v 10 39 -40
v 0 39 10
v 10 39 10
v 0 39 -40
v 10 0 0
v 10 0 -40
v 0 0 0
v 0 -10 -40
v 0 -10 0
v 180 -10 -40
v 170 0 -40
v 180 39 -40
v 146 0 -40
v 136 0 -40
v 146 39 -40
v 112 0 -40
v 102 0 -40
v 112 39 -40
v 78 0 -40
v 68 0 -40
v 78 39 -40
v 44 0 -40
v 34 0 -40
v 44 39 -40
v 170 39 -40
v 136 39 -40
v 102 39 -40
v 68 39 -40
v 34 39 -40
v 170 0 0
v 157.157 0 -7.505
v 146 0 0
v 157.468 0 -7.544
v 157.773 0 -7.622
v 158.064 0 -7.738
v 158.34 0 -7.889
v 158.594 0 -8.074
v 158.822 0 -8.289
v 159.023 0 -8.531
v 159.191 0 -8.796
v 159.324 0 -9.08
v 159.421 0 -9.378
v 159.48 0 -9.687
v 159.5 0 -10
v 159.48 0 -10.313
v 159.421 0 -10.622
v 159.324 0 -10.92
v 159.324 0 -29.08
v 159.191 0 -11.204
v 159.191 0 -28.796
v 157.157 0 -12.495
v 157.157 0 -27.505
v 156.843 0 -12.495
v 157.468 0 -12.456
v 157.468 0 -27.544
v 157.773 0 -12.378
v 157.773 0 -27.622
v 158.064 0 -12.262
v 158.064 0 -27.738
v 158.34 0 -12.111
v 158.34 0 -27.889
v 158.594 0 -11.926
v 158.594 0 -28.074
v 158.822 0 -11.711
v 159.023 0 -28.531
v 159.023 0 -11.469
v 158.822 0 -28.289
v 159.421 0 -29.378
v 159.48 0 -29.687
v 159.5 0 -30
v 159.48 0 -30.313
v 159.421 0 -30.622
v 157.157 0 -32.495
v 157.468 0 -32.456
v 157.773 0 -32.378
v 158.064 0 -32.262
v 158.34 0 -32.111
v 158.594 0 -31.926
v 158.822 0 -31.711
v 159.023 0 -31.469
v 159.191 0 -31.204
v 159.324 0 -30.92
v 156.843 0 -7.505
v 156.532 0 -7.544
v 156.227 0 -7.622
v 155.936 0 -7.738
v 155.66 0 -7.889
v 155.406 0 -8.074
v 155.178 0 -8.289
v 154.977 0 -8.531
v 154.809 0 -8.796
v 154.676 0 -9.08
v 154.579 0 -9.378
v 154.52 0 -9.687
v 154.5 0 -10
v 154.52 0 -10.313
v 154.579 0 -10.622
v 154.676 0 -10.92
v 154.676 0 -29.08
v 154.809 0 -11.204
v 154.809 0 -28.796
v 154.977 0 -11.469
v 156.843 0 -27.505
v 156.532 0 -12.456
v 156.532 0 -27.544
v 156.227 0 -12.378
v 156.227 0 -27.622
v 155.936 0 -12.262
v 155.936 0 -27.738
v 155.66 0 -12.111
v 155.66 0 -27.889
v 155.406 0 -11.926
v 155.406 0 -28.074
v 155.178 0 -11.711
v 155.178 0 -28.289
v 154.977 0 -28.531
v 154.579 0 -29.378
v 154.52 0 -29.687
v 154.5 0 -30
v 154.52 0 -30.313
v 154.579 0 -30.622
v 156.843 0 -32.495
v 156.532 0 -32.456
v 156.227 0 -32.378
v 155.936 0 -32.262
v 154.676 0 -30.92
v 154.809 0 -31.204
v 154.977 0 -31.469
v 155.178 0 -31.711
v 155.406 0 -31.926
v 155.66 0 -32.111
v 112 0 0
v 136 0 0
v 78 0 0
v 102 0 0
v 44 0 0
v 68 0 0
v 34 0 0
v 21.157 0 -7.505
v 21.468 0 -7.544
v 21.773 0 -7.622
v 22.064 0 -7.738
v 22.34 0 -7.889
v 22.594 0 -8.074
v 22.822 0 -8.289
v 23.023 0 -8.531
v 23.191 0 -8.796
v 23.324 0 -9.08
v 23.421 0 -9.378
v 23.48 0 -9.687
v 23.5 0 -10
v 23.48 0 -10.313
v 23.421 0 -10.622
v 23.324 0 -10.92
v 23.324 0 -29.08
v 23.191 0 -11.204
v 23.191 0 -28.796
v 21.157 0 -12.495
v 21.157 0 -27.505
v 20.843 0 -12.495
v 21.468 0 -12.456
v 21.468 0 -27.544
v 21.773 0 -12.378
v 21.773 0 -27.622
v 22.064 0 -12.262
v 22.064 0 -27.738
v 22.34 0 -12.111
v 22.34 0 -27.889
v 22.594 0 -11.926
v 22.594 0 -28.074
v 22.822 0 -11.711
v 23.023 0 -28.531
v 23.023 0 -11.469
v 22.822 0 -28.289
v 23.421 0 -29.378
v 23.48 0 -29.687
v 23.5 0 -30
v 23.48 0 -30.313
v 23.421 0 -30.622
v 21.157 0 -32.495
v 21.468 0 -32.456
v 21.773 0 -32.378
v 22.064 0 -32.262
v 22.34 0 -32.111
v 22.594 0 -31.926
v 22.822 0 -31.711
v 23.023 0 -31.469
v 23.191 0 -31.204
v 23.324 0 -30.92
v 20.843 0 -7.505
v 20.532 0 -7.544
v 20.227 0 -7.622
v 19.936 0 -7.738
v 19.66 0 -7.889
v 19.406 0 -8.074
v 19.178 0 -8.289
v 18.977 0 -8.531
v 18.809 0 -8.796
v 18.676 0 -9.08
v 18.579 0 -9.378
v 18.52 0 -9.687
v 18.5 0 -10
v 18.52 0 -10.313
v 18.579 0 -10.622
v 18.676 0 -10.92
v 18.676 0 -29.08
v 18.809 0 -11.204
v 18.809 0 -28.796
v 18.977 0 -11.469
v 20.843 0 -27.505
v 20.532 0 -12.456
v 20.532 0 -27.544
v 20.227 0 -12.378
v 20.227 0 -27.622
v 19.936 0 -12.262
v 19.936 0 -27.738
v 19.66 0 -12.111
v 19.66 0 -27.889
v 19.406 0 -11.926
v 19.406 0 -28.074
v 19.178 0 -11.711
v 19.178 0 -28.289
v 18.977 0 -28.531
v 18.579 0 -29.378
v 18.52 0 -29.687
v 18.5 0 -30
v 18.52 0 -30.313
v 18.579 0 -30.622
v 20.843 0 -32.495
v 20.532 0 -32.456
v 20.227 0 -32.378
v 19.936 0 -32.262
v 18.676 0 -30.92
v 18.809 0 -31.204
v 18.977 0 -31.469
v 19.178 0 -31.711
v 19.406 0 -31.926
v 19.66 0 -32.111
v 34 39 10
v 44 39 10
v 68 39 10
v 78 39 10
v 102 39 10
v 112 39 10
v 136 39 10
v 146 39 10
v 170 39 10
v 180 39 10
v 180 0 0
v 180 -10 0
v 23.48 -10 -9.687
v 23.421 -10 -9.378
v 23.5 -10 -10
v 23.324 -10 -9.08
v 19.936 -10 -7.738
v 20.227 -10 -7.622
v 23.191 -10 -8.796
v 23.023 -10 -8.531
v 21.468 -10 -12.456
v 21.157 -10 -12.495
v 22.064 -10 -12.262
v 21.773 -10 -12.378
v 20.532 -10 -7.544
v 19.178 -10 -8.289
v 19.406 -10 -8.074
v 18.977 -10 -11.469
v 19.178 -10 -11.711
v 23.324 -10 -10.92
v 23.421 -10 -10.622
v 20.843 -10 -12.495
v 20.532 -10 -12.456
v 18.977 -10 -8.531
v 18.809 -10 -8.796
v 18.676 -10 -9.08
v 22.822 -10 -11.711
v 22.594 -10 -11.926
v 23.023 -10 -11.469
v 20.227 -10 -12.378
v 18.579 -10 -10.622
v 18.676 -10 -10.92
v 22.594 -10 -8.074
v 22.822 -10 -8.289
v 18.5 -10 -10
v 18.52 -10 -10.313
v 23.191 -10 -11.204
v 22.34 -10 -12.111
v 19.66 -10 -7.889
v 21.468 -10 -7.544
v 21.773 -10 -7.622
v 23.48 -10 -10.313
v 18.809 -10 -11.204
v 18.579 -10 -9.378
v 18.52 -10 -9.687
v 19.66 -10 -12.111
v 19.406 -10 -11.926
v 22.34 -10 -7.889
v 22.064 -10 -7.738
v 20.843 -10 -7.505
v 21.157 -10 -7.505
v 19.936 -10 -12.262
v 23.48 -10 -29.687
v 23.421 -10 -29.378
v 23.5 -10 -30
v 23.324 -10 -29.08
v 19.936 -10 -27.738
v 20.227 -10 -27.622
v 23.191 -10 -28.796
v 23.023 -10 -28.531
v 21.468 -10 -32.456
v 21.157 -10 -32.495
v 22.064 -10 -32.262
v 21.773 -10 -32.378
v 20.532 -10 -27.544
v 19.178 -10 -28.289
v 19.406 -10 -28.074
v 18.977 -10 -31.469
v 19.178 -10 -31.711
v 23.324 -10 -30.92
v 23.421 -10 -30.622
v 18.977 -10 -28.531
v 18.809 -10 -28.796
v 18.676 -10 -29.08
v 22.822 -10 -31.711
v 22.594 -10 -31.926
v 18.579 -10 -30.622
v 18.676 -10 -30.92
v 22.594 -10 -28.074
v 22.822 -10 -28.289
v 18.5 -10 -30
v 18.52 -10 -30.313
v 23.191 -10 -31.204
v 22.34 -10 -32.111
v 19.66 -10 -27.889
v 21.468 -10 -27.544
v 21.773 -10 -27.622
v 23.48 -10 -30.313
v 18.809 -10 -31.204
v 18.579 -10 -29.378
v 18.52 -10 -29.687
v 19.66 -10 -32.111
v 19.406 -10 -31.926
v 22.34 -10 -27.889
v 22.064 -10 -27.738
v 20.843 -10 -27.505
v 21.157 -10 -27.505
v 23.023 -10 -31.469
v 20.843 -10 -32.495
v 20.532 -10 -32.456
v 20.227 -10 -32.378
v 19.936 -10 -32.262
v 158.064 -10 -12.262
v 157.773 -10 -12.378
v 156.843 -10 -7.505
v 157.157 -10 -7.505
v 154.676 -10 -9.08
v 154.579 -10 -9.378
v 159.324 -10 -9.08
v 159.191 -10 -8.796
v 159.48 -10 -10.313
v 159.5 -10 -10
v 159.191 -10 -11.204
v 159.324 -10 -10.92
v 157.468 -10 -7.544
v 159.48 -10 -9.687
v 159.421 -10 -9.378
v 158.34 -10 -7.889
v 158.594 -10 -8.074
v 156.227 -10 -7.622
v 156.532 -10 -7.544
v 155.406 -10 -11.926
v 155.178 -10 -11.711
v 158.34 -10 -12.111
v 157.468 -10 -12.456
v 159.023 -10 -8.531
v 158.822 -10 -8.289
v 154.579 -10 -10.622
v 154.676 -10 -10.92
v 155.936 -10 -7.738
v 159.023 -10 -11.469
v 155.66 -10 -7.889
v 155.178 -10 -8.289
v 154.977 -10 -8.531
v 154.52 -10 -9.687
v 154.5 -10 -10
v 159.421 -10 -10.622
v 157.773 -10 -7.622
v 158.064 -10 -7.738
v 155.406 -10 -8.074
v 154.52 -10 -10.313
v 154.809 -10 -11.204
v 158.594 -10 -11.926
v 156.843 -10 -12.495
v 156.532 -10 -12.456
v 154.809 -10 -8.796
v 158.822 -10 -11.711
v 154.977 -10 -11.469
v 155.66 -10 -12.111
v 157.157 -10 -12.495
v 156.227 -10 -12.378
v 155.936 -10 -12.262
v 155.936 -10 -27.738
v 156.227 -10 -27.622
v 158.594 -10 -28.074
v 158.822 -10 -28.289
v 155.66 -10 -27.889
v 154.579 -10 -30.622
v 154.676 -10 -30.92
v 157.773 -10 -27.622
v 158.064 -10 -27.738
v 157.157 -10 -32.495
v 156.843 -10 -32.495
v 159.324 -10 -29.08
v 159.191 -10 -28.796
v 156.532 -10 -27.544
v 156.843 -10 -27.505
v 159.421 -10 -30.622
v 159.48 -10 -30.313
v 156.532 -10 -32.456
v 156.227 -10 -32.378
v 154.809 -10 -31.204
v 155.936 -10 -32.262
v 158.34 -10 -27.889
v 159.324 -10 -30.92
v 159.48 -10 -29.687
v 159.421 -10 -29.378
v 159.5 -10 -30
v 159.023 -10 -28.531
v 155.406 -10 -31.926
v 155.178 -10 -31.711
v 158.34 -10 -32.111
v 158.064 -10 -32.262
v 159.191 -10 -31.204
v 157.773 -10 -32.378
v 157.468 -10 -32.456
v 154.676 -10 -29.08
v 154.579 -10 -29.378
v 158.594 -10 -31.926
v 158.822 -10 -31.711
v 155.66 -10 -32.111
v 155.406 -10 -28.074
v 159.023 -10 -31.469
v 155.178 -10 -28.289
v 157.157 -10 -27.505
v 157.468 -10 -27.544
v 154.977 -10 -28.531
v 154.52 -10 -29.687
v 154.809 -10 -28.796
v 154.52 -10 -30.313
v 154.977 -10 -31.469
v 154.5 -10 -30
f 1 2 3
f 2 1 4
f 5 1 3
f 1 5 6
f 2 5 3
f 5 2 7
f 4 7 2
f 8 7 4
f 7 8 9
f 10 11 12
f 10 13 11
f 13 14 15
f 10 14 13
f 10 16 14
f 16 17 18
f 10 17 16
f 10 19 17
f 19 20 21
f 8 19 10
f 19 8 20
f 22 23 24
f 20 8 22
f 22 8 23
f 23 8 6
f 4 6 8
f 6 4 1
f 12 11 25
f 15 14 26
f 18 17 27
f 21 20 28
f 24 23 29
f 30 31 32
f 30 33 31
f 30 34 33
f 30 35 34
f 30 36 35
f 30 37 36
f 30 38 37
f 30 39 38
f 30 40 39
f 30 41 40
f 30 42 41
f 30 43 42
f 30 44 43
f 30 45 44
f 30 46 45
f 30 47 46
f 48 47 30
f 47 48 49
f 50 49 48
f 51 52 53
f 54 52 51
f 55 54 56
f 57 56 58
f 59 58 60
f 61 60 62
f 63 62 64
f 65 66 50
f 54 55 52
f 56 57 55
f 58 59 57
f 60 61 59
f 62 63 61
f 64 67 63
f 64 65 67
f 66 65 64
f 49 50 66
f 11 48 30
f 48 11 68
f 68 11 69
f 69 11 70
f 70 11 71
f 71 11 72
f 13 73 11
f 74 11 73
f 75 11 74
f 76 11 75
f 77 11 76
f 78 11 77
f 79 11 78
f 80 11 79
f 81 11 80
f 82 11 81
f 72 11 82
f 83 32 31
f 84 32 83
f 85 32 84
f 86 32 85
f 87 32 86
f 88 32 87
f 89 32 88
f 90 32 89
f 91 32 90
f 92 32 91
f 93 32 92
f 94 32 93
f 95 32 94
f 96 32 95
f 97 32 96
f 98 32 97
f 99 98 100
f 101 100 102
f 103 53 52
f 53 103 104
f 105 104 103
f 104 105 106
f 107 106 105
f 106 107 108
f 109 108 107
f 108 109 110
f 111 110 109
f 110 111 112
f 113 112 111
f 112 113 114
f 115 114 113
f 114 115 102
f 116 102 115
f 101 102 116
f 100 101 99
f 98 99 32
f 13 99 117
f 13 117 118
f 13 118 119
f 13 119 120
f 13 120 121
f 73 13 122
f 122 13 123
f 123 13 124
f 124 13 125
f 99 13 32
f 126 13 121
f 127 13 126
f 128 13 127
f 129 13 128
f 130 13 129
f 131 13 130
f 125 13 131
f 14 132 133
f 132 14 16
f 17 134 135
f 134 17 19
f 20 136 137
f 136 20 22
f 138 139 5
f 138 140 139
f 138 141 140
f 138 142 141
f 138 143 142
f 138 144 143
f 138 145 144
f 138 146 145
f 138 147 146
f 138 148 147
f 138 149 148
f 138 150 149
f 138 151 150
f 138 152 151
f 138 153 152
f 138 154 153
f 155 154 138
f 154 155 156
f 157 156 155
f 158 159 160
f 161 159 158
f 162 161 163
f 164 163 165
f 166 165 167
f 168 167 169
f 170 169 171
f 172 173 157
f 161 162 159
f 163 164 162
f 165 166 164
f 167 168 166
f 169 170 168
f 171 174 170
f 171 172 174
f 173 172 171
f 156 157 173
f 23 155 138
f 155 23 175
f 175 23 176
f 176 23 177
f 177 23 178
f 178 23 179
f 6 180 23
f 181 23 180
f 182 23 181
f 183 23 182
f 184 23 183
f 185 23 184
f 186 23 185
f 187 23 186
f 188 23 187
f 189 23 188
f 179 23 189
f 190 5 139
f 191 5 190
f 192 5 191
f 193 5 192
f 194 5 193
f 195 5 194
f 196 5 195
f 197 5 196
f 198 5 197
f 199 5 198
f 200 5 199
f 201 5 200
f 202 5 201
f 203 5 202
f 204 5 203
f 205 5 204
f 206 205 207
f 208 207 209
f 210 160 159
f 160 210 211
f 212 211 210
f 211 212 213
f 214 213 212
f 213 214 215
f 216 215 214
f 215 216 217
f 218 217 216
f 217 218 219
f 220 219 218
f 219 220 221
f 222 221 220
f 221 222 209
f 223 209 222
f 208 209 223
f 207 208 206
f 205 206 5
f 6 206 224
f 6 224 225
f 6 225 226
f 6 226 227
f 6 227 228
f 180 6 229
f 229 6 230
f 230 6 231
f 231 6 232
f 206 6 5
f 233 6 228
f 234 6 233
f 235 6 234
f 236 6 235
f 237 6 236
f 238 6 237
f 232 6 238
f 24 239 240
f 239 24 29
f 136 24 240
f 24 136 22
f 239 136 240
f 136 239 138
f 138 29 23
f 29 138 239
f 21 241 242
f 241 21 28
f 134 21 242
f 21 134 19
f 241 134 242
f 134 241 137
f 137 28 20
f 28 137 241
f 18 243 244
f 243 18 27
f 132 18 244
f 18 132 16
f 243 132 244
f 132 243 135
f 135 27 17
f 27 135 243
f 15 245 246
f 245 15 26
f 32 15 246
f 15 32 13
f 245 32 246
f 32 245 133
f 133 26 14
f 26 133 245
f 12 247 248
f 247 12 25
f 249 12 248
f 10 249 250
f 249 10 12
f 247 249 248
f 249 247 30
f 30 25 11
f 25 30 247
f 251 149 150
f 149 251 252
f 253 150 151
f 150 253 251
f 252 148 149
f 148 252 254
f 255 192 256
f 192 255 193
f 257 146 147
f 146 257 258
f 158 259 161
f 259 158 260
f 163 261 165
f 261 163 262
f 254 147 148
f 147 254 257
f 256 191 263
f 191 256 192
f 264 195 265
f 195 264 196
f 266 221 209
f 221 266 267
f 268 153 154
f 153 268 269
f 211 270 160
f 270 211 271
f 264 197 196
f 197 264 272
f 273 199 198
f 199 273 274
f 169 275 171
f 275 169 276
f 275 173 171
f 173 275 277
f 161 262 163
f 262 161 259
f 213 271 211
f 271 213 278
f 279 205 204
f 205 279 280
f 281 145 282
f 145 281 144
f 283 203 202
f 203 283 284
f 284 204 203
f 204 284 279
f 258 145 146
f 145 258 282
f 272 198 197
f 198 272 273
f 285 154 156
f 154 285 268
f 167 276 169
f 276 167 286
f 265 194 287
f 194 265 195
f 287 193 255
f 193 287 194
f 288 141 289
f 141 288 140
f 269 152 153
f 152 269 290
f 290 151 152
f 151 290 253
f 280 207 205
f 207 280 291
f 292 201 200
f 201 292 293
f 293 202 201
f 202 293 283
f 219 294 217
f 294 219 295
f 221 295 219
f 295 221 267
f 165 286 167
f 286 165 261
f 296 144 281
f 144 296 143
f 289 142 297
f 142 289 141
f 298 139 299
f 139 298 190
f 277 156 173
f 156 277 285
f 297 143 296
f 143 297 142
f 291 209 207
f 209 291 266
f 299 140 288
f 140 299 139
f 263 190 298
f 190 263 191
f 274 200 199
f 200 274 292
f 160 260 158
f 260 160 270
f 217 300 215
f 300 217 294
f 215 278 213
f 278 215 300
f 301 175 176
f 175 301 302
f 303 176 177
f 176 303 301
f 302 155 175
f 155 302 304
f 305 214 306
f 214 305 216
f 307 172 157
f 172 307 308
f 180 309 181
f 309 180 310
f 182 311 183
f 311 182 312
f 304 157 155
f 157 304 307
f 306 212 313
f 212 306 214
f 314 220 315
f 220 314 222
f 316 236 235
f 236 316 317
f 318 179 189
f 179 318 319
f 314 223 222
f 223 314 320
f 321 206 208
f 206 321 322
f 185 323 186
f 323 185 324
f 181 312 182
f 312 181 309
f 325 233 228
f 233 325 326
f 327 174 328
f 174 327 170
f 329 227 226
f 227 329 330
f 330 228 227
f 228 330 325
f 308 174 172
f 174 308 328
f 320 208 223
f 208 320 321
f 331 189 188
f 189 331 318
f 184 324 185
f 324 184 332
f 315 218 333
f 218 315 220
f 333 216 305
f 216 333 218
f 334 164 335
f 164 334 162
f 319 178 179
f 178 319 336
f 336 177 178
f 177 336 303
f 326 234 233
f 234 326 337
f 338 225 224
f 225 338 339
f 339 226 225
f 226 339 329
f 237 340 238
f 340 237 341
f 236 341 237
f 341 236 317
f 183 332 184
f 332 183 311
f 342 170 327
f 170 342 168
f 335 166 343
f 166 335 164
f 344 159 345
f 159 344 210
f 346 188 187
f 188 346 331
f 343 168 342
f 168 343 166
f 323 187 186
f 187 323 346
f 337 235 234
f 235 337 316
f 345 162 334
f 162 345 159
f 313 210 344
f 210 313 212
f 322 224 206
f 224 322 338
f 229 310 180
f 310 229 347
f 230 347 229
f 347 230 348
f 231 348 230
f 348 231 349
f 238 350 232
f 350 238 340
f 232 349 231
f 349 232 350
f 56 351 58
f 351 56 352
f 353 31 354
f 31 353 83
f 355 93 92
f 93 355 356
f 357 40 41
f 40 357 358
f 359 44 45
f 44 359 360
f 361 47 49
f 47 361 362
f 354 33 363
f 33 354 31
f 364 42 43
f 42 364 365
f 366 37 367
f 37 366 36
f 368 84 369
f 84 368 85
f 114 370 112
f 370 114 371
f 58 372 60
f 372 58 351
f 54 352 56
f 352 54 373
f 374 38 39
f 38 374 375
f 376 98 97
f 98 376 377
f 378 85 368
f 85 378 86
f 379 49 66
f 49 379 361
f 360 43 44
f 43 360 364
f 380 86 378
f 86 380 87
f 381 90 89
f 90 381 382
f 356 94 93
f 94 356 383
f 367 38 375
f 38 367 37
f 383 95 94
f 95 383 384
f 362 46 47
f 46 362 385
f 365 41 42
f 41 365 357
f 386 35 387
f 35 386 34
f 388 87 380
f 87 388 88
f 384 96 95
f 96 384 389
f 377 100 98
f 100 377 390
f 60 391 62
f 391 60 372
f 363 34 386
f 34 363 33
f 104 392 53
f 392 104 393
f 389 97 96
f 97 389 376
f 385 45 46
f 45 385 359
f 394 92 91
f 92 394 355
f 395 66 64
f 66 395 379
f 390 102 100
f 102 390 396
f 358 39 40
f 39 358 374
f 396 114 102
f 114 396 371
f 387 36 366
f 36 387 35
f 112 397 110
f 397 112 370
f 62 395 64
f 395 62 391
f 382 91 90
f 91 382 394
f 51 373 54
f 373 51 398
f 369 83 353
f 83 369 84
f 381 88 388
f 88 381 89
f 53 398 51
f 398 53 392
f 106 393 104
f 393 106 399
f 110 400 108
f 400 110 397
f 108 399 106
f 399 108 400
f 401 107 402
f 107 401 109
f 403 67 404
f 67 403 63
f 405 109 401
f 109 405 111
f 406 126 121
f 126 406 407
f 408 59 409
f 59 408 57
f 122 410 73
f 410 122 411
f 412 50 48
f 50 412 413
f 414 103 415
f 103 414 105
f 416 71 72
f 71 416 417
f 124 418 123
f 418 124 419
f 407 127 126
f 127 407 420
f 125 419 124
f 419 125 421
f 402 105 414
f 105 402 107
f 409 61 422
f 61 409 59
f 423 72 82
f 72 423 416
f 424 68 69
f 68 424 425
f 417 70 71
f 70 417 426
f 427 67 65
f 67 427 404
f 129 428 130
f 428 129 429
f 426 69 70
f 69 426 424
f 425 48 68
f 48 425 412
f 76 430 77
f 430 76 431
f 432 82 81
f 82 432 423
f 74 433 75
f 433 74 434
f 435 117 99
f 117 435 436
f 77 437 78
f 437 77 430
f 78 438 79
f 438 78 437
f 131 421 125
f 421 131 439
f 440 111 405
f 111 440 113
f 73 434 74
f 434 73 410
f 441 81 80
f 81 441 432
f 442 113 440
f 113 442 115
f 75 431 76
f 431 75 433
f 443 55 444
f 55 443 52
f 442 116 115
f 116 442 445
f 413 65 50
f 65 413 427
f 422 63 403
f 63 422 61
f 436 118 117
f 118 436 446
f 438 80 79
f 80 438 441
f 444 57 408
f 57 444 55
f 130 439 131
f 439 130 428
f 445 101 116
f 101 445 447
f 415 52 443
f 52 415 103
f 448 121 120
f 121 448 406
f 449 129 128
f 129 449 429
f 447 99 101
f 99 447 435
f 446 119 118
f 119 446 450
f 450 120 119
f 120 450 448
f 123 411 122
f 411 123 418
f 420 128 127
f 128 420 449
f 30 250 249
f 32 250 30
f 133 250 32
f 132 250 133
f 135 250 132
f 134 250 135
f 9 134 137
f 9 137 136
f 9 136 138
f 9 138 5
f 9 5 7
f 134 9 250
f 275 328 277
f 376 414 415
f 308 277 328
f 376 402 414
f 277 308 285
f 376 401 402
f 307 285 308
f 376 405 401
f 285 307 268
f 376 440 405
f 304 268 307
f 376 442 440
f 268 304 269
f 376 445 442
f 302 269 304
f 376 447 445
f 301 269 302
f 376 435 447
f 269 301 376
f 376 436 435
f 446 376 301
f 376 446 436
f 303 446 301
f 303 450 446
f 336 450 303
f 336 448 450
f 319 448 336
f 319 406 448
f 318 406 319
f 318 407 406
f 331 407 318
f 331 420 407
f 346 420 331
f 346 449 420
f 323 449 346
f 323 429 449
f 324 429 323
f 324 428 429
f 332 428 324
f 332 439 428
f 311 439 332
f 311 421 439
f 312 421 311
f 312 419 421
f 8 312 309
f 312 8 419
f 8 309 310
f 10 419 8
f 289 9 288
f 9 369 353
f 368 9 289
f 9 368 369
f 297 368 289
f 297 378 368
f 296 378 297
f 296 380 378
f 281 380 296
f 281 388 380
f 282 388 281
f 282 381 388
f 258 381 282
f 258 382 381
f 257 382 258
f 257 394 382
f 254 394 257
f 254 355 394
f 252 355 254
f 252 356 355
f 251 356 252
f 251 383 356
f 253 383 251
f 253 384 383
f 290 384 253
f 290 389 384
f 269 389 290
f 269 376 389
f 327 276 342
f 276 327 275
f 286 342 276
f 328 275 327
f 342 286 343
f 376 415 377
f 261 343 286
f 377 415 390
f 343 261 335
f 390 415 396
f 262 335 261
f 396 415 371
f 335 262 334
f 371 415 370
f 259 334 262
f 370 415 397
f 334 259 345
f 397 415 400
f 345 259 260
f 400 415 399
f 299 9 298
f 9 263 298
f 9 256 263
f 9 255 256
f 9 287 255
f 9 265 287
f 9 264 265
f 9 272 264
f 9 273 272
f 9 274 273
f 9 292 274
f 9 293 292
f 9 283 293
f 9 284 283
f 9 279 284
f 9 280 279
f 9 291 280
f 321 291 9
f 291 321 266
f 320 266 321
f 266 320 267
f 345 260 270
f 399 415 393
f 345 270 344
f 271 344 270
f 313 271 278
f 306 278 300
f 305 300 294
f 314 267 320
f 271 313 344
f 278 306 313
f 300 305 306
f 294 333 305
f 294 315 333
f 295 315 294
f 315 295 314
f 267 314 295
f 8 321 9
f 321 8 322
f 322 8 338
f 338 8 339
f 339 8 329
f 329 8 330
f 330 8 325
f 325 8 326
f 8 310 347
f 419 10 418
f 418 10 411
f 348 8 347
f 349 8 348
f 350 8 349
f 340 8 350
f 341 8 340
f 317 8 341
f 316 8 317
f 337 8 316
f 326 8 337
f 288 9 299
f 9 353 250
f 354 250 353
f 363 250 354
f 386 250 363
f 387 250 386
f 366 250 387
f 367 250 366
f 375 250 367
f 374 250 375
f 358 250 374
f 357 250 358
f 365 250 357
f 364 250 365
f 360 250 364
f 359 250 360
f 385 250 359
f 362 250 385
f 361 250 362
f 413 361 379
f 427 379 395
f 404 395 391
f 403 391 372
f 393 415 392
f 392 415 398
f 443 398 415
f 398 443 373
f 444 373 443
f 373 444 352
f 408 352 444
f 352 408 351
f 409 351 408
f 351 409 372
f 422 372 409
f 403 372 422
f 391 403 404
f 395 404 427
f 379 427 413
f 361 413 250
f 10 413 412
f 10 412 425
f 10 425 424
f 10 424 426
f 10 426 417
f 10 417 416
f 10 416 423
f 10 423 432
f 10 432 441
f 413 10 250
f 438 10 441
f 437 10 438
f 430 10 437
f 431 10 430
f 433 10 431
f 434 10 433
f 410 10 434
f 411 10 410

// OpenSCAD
schlauchD = 22;
schlauchT =  2;
schlauchE = 15;
halterL   = 40;
halterB   = 10;
halterR   = 10;
halterNr  =  5;
wallMntD  = 10;
screwM    = 5;



module prism(l, w, h) {
    polyhedron(// pt      0        1        2        3        4        5
               points=[[0,0,0], [0,w,h], [l,w,h], [l,0,0], [0,w,0], [l,w,0]],
               // top sloping face (A)
               faces=[[0,1,2,3],
               // vertical rectangular face (B)
               [2,1,4,5],
               // bottom face (C)
               [0,3,5,4],
               // rear triangular face (D)
               [0,4,1],
               // front triangular face (E)
               [3,2,5]]
               );}

module Halter() {
    prism(halterB, schlauchD+schlauchE+schlauchT, halterR);
    translate([0,0,-halterL])
        cube([halterB,schlauchD+schlauchE+schlauchT,halterL]);
}

for ( i = [0:halterNr] ) {
    translate([(halterB+schlauchD+schlauchT)*i,0,0]) Halter();
}

translate([0,-halterB,-halterL])
difference() 
{
    cube([halterNr*(halterB+schlauchD+schlauchT)+halterB,wallMntD,halterL]);
    rotate([90,0,0]){
        d2 = (halterB+schlauchD+schlauchT)*(halterNr-1);
        translate([schlauchD/2+halterB,halterL*3/4,-wallMntD-schlauchT/2])
            cylinder(wallMntD+schlauchT,screwM/2,screwM/2,$fn=50);
        translate([schlauchD/2+halterB,halterL/4,-wallMntD-schlauchT/2])
            cylinder(wallMntD+schlauchT,screwM/2,screwM/2,$fn=50);
        translate([schlauchD/2+halterB+d2,halterL*3/4,-wallMntD-schlauchT/2])
            cylinder(wallMntD+schlauchT,screwM/2,screwM/2,$fn=50);
        translate([schlauchD/2+halterB+d2,halterL/4,-wallMntD-schlauchT/2])
            cylinder(wallMntD+schlauchT,screwM/2,screwM/2,$fn=50);
    }
}

echo( "Laenge:",(halterB+schlauchD+schlauchT)*(halterNr) );
